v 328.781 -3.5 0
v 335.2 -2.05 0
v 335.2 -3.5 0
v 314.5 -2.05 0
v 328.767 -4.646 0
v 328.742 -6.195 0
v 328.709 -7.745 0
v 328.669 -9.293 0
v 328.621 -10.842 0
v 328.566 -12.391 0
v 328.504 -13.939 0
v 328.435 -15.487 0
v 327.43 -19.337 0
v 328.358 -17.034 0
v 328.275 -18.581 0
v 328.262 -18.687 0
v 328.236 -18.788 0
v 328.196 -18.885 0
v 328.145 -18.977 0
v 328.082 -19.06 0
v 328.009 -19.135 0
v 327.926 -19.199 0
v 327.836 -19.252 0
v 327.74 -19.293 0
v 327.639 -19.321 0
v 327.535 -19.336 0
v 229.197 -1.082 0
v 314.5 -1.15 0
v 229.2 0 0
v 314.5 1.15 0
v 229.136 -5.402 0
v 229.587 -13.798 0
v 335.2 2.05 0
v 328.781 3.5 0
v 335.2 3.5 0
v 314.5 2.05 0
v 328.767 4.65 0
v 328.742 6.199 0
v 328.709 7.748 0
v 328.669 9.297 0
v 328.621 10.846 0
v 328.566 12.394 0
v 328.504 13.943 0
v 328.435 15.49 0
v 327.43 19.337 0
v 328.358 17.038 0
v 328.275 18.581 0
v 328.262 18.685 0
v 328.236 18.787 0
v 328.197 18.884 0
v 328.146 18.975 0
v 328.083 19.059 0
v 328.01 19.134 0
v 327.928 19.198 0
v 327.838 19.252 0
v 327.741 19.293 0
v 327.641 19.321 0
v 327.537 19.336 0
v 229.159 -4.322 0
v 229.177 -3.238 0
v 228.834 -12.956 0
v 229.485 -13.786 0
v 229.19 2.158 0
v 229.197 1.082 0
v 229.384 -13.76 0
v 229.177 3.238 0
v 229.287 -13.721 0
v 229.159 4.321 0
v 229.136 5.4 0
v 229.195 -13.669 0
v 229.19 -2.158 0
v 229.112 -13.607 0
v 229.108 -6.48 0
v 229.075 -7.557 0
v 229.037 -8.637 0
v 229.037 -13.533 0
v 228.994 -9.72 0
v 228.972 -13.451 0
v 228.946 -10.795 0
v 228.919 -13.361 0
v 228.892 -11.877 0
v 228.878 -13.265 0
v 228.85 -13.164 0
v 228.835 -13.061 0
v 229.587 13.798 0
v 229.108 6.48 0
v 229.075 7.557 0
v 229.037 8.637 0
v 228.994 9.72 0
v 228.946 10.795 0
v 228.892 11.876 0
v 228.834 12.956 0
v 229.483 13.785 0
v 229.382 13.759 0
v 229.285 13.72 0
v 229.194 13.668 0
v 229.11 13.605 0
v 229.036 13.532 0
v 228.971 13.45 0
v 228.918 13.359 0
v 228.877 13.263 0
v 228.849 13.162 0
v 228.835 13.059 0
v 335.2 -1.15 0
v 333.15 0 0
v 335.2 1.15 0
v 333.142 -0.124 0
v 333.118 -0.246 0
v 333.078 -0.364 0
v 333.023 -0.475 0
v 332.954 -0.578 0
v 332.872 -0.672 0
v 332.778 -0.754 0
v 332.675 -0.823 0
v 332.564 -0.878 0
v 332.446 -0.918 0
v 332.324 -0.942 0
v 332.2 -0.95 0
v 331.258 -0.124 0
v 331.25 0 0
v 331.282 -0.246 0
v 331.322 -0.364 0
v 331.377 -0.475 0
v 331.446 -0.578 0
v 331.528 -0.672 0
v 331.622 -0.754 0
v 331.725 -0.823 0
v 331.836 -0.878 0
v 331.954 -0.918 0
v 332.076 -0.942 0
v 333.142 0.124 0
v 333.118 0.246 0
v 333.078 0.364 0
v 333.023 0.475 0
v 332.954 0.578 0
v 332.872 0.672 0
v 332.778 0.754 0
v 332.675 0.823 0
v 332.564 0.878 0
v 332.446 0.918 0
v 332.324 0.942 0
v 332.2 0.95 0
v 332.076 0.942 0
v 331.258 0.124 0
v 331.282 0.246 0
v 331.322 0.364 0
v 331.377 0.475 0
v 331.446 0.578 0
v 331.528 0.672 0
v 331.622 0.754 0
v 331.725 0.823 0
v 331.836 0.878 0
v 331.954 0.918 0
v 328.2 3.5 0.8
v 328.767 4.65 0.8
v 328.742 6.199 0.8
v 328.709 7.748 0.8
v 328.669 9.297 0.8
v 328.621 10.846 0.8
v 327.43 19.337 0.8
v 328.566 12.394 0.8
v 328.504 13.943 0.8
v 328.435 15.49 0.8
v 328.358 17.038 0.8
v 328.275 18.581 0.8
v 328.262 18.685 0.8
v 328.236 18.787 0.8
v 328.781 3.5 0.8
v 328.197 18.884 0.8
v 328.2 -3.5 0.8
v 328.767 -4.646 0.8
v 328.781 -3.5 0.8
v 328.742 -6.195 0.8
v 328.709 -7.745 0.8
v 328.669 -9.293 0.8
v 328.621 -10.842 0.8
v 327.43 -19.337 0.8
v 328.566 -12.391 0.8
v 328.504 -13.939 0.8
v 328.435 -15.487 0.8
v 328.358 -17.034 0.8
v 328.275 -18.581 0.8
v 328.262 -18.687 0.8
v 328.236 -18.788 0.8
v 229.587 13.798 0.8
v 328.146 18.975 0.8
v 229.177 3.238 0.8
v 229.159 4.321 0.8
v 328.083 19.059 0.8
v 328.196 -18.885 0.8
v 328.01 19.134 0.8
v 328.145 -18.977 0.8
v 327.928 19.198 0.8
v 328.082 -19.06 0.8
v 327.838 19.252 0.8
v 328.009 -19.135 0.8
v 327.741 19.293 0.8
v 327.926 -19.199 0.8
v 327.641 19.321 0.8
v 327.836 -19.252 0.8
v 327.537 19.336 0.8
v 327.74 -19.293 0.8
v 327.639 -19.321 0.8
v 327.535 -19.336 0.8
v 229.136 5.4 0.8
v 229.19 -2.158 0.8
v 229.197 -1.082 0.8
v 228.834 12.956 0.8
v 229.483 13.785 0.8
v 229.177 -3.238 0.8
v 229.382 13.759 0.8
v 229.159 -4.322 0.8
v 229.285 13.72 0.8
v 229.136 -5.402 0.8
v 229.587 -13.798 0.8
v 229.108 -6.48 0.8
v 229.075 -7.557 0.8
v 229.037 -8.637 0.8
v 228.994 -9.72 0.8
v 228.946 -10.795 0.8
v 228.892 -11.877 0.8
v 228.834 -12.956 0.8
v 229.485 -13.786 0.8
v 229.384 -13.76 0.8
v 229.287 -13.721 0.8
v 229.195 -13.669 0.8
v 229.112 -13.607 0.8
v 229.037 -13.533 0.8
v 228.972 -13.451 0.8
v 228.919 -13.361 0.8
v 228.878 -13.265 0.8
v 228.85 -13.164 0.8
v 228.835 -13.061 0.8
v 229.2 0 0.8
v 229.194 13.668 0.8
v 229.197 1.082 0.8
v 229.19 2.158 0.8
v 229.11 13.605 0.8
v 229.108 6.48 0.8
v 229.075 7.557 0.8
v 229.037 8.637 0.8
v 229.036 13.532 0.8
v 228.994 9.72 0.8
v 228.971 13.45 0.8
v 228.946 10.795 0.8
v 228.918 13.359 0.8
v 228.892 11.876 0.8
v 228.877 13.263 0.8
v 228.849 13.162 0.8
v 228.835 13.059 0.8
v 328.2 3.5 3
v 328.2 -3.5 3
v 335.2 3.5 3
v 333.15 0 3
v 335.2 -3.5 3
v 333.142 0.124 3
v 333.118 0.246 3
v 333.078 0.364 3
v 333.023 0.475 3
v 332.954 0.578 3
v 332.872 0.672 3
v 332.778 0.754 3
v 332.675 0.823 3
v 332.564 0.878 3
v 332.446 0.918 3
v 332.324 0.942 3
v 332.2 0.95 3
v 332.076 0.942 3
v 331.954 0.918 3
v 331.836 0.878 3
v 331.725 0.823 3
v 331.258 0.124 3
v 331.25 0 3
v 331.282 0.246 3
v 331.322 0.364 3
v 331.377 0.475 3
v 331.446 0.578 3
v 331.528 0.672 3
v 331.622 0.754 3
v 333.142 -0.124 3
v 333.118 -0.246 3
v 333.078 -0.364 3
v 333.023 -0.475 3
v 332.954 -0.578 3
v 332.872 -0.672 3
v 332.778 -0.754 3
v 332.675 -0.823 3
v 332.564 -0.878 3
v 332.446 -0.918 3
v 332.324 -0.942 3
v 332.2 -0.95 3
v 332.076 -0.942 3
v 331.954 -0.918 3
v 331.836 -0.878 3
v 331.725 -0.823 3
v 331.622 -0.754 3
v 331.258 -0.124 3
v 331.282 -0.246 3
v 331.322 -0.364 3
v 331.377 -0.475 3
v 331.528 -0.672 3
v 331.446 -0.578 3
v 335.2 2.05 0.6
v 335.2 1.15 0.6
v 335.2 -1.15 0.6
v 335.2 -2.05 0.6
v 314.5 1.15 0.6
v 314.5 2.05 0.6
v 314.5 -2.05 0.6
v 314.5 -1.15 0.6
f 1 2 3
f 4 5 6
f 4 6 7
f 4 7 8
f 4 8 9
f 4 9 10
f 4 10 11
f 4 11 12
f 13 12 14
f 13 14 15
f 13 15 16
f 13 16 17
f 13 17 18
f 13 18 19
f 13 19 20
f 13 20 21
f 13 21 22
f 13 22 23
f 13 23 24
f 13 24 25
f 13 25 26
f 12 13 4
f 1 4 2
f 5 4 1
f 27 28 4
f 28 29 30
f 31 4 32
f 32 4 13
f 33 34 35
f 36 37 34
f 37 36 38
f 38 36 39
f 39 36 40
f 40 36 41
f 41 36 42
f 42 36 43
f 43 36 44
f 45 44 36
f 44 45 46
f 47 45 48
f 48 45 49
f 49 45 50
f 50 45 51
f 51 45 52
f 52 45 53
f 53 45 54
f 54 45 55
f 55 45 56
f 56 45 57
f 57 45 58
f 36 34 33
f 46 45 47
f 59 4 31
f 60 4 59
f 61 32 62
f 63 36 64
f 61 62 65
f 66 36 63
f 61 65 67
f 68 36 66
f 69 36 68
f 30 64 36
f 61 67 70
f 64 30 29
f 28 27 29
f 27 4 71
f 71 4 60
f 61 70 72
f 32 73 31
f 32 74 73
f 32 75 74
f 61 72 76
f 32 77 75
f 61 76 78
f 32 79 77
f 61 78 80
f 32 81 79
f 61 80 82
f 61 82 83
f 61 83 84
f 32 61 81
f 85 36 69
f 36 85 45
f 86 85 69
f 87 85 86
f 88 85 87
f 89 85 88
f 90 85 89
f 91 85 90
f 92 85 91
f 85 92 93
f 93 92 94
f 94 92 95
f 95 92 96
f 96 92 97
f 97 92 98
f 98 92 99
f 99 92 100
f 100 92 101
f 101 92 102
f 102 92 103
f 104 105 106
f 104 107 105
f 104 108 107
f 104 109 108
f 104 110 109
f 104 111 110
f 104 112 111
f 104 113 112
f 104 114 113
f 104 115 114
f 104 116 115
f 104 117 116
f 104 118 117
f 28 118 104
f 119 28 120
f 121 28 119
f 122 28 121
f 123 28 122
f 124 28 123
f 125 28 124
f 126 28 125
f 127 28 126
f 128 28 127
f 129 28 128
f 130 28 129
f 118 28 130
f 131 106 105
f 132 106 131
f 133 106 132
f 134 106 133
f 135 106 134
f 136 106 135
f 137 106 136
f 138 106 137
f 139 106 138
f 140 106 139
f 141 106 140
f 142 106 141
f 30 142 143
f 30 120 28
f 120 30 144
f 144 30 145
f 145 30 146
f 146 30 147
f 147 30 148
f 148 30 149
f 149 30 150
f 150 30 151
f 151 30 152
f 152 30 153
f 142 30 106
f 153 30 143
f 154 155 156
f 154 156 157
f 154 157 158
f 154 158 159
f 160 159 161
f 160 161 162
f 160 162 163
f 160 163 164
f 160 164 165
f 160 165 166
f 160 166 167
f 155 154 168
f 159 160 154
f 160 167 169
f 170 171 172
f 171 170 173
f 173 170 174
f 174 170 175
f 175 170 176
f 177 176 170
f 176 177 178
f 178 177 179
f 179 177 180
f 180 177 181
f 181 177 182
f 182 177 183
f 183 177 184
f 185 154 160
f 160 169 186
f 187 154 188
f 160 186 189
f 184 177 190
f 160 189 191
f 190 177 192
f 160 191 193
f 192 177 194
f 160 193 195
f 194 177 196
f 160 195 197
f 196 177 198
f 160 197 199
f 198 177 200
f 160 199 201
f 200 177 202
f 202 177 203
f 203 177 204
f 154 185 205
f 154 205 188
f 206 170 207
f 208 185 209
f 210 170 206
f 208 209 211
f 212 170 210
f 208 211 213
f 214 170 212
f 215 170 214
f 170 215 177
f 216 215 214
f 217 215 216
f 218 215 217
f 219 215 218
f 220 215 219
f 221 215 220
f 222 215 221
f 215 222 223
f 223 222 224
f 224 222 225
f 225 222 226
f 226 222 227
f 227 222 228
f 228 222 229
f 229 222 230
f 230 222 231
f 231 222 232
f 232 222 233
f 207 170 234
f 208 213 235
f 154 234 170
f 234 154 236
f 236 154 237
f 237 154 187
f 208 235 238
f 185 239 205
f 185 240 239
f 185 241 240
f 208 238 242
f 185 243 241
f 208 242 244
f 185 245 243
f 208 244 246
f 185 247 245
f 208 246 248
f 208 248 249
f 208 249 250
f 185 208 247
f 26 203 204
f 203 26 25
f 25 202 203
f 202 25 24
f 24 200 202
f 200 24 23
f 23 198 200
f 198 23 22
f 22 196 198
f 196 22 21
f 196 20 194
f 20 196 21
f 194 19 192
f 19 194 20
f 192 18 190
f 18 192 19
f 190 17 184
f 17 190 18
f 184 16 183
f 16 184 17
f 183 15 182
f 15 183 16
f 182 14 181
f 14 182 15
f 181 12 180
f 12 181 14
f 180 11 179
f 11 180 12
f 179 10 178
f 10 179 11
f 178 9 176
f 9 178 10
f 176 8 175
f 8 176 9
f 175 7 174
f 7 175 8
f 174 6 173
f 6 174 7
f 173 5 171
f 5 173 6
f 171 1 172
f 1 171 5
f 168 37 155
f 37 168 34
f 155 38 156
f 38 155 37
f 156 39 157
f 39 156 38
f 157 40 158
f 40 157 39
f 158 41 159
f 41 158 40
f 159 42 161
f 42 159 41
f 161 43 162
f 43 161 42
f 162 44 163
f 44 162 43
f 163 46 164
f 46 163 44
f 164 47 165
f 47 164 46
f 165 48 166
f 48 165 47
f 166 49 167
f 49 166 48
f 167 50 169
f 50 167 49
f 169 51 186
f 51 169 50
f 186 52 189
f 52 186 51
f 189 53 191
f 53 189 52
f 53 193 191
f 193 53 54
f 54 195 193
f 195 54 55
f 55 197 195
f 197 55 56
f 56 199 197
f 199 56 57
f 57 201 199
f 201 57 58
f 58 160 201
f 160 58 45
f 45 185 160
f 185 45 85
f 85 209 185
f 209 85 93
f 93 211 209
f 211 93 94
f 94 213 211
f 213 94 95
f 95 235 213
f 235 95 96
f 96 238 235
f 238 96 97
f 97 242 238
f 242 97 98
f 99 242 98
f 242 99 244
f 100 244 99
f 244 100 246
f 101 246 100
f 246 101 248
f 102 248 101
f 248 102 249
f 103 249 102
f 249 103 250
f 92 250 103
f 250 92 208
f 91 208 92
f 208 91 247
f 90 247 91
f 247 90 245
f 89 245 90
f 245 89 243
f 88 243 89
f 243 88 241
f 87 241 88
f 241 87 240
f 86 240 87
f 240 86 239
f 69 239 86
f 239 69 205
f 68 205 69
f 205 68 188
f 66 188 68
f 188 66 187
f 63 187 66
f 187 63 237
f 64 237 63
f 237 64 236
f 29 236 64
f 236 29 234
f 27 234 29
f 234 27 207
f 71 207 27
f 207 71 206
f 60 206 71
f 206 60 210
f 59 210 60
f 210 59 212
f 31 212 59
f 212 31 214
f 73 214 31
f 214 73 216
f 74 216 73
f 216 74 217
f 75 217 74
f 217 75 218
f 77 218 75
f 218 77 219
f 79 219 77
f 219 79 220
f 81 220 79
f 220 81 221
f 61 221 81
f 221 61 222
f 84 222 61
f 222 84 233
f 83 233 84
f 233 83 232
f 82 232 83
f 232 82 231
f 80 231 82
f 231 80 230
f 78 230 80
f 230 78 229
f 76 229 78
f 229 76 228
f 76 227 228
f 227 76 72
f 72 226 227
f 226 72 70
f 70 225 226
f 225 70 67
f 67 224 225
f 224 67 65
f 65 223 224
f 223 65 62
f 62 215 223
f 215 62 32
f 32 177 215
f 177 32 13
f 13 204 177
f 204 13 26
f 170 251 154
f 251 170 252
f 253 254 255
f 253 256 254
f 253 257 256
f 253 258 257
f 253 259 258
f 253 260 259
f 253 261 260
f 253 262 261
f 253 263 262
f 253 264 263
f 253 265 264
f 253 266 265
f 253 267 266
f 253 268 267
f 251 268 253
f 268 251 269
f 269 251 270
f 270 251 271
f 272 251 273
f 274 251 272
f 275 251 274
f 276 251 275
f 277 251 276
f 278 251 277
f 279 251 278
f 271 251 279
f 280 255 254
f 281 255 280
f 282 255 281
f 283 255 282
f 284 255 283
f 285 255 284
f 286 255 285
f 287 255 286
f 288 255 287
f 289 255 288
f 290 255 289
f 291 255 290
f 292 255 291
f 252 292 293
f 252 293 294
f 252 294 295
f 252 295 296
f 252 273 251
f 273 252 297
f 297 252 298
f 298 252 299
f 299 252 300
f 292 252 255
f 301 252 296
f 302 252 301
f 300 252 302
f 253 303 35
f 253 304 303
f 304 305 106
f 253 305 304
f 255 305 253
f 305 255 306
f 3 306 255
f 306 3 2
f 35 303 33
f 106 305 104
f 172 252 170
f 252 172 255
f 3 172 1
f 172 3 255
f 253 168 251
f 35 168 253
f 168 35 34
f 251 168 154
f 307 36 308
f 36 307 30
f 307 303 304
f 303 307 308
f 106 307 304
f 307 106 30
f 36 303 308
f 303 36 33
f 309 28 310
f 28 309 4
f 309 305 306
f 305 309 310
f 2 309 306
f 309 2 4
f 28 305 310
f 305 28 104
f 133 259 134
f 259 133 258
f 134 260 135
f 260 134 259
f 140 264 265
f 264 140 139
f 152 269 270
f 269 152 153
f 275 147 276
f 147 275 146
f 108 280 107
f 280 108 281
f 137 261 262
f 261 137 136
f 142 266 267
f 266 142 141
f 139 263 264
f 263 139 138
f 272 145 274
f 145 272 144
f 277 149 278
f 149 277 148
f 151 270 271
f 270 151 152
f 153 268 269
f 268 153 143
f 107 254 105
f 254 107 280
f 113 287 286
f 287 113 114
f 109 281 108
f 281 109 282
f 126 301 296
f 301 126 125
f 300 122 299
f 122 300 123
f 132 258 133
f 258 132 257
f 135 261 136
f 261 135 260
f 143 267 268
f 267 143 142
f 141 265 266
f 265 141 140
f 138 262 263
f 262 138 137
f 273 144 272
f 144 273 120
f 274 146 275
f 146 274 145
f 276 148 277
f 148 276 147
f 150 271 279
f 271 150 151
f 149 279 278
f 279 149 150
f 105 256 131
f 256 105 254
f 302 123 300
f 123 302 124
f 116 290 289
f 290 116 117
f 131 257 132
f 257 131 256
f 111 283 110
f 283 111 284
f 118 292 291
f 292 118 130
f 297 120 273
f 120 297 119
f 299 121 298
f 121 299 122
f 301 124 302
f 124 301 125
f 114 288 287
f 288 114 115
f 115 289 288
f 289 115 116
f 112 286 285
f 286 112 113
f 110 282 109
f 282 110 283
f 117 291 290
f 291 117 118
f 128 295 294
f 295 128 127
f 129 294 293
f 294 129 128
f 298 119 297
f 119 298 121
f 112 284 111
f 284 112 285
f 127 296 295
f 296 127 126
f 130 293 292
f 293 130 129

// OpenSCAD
// Gen-DZ — bobbin LID (top flange + locating tab). Print x12, flange face DOWN on the bed.
// CA-glue onto the hub top BEFORE winding. Tab = lap joint into the stator tab pocket; 1.75 mm filament
// pin through pin hole + stator ledge, trim flush. Lead slots carry both leads flush.
include <parameters.scad>;
$fn = 48;
module sector_2d(r_in, r_out, ang) {
    polygon([
        for (a = [-ang/2 : ang/24 : ang/2]) [r_in*cos(a), r_in*sin(a)],
        for (a = [ang/2 : -ang/24 : -ang/2]) [r_out*cos(a), r_out*sin(a)]
    ]);
}
module footprint_2d() { offset(r=wall) sector_2d(coil_id_r, coil_od_r, span_deg); }
module hub_2d()       { offset(delta=-coil_core_inset) sector_2d(coil_id_r, coil_od_r, span_deg); }

difference() {
    union() {
        linear_extrude(flange_t) footprint_2d();
        translate([coil_od_r + 0.2, -tab_w/2, 0]) cube([tab_len, tab_w, tab_h]);
    }
    translate([coil_mount_r, 0, -0.1]) cylinder(d=pin_d, h=tab_h + 1);
    for (y = [lead_y, -lead_y])
        translate([coil_od_r - coil_core_inset - 0.5, y - lead_slot_w/2, -0.1])
            cube([coil_core_inset + tab_len + 2, lead_slot_w, lead_groove_d + 0.1]);
}
